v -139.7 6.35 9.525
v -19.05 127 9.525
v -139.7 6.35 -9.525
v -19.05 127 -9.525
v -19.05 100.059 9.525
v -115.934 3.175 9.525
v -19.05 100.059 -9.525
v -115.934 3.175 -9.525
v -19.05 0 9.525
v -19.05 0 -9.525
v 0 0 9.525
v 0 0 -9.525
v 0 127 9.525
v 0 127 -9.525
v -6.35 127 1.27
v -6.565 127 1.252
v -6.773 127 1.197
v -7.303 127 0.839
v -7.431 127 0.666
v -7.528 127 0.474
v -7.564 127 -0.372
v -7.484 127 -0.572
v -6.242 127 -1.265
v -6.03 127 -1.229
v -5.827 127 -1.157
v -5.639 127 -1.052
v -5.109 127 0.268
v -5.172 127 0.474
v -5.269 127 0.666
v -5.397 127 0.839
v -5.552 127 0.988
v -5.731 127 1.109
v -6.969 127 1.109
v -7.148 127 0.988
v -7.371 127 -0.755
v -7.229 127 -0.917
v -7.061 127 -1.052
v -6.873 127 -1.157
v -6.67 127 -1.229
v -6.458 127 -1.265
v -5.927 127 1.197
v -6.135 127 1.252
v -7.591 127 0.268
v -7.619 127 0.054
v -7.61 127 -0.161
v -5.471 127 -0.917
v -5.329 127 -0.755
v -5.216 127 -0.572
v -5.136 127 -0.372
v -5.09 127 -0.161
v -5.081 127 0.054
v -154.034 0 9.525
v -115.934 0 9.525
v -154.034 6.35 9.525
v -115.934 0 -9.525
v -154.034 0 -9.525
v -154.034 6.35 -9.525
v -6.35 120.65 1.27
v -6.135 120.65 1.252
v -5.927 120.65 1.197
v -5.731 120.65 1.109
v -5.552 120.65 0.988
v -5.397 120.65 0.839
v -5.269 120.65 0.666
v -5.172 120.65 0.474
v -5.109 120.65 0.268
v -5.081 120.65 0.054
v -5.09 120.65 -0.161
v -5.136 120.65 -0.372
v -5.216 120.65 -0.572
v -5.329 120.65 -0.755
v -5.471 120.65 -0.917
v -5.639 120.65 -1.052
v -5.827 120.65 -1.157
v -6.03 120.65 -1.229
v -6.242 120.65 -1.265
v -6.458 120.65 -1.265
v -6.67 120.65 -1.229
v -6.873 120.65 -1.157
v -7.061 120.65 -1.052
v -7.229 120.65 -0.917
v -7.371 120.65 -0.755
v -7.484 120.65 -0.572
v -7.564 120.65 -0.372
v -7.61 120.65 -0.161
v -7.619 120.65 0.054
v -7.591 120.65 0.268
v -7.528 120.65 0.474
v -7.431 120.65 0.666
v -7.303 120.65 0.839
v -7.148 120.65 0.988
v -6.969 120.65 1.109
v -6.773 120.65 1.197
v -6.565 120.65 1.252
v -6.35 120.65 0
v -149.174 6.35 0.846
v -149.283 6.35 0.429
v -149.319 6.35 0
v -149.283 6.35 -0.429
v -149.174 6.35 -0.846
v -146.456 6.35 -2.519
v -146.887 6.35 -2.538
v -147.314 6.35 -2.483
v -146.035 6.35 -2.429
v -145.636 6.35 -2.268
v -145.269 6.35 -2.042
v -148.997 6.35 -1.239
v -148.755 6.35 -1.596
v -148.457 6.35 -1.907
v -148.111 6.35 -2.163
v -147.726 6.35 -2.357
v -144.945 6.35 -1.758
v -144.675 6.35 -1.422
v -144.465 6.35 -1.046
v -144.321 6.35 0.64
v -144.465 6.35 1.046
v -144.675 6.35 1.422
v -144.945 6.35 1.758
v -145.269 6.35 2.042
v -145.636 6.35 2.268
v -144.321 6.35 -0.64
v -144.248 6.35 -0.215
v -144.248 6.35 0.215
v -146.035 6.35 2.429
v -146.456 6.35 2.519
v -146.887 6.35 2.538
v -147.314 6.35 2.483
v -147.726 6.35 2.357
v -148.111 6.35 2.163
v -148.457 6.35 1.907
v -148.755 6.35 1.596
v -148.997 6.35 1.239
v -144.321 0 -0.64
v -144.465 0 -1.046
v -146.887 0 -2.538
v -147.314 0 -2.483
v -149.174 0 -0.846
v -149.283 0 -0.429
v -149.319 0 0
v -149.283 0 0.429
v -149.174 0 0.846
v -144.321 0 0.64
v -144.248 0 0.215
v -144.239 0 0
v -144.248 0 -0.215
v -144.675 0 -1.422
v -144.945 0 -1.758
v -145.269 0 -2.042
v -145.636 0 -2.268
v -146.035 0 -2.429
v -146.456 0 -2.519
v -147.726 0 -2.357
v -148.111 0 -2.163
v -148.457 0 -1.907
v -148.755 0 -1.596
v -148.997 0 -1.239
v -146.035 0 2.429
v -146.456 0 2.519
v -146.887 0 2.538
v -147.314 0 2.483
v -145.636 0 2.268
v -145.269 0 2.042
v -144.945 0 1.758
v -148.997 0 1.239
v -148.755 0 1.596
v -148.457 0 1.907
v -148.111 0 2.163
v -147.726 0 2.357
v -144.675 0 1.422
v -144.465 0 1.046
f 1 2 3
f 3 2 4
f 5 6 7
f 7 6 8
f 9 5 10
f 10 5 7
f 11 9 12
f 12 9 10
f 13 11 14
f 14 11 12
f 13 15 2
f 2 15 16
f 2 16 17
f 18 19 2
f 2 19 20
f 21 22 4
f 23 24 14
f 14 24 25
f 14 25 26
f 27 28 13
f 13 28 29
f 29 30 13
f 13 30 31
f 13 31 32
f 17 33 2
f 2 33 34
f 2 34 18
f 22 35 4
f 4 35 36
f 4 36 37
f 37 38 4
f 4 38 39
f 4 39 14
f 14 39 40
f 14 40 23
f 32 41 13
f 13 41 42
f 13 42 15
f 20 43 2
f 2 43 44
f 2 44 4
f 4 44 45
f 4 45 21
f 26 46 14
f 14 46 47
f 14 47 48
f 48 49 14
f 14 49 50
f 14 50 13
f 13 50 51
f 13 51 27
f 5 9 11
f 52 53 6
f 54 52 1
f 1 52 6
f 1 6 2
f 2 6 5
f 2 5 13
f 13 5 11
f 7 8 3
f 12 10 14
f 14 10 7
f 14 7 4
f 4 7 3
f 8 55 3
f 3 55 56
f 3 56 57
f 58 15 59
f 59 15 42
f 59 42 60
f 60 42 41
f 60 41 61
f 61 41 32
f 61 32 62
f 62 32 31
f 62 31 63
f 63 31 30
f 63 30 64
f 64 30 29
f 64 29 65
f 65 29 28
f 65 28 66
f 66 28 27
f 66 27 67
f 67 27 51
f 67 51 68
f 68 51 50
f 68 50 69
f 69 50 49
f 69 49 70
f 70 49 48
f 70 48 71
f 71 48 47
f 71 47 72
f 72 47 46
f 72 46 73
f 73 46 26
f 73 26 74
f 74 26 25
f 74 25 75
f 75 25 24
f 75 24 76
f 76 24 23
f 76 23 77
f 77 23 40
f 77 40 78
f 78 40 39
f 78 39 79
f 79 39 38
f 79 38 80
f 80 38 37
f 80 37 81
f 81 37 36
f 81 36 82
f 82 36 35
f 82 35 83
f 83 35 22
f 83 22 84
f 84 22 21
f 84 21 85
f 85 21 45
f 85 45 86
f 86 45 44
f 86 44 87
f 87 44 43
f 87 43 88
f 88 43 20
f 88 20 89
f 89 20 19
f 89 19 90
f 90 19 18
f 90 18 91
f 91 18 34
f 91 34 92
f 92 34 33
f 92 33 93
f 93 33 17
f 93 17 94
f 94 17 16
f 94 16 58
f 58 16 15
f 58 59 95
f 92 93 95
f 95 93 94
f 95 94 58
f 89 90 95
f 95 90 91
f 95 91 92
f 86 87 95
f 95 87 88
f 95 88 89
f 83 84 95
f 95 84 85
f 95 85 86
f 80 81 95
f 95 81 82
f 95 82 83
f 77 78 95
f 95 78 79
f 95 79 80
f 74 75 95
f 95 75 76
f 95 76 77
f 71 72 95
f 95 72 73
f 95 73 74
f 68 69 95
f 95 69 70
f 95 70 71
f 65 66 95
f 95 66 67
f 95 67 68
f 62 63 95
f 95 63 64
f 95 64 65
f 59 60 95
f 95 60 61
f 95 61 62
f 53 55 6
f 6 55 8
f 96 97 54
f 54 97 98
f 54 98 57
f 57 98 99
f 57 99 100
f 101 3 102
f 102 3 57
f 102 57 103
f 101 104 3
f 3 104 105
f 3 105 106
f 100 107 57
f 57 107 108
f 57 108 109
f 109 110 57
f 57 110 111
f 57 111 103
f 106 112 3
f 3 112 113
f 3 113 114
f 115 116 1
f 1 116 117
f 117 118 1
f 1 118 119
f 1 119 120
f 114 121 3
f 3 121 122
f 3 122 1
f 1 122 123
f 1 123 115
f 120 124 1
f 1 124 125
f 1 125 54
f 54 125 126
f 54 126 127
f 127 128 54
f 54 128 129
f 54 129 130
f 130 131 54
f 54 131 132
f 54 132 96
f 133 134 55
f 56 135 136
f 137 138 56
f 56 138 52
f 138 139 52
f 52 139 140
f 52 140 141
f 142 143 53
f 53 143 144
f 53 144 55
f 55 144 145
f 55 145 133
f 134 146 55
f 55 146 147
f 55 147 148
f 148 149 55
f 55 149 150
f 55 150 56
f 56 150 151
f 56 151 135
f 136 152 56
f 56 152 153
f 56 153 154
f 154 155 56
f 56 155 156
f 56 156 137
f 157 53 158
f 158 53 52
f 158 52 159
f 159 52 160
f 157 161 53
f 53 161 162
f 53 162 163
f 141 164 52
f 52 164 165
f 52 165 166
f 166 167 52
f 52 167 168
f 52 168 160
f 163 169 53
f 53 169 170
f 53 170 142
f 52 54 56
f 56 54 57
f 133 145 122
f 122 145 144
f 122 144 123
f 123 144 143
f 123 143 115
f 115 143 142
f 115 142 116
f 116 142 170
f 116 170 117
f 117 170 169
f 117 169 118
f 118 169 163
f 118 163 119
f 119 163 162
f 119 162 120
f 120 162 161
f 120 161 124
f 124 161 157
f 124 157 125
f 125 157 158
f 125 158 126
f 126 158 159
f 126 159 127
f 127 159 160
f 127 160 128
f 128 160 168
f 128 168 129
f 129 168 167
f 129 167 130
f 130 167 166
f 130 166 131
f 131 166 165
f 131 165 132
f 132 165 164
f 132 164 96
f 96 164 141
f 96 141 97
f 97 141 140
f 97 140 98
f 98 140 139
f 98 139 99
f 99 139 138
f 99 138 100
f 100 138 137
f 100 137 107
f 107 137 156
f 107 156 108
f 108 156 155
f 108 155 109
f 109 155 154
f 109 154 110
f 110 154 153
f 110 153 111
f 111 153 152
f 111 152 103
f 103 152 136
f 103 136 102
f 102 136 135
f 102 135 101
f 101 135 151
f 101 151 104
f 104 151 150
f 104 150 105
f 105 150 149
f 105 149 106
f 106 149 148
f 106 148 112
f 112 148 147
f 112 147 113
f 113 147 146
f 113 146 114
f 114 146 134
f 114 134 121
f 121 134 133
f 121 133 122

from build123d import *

# Parameters (mm, degrees)
BOSS_EXTRUDE1_DEPTH = 9.525
SKETCH3_R           = 1.27
CUT_EXTRUDE1_DEPTH  = 6.35
SKETCH4_W           = 38.1
SKETCH4_H           = 6.35
BOSS_EXTRUDE2_DEPTH = 19.05
SKETCH5_R           = 2.54
CUT_EXTRUDE3_DEPTH  = 9.525


with BuildPart() as part:
    # Sketch2 → Boss-Extrude1 (new, symmetric)
    with BuildSketch(Plane.XY):
        Polygon((0, 127), (-19.05, 127), (-142.875, 3.175), (-115.934231637, 3.175), (-19.05, 100.059231637), (-19.05, 0), (0, 0), align=None)
    extrude(amount=BOSS_EXTRUDE1_DEPTH, both=True)

    # Sketch3 → Cut-Extrude1 (cut)
    with BuildSketch(Plane(origin=(0, 127, 0), x_dir=(1, 0, 0), z_dir=(0, 1, 0))):
        with Locations(Location((-6.35, 0, 0), (0, 0, 270))):
            Circle(SKETCH3_R)
    extrude(amount=-CUT_EXTRUDE1_DEPTH, mode=Mode.SUBTRACT)

    # Sketch4 → Boss-Extrude2 (add)
    with BuildSketch(Plane.XY.offset(9.525)):
        with Locations((-134.984231637, 3.175)):
            Rectangle(SKETCH4_W, SKETCH4_H)
    extrude(amount=-BOSS_EXTRUDE2_DEPTH)

    # Sketch5 → Cut-Extrude3 (cut)
    with BuildSketch(Plane(origin=(0, 6.35, 0), x_dir=(1, 0, 0), z_dir=(0, 1, 0))):
        with Locations(Location((-146.779052356, 0, 0), (0, 0, 180))):
            Circle(SKETCH5_R)
    extrude(amount=-CUT_EXTRUDE3_DEPTH, mode=Mode.SUBTRACT)


solid = part.part
